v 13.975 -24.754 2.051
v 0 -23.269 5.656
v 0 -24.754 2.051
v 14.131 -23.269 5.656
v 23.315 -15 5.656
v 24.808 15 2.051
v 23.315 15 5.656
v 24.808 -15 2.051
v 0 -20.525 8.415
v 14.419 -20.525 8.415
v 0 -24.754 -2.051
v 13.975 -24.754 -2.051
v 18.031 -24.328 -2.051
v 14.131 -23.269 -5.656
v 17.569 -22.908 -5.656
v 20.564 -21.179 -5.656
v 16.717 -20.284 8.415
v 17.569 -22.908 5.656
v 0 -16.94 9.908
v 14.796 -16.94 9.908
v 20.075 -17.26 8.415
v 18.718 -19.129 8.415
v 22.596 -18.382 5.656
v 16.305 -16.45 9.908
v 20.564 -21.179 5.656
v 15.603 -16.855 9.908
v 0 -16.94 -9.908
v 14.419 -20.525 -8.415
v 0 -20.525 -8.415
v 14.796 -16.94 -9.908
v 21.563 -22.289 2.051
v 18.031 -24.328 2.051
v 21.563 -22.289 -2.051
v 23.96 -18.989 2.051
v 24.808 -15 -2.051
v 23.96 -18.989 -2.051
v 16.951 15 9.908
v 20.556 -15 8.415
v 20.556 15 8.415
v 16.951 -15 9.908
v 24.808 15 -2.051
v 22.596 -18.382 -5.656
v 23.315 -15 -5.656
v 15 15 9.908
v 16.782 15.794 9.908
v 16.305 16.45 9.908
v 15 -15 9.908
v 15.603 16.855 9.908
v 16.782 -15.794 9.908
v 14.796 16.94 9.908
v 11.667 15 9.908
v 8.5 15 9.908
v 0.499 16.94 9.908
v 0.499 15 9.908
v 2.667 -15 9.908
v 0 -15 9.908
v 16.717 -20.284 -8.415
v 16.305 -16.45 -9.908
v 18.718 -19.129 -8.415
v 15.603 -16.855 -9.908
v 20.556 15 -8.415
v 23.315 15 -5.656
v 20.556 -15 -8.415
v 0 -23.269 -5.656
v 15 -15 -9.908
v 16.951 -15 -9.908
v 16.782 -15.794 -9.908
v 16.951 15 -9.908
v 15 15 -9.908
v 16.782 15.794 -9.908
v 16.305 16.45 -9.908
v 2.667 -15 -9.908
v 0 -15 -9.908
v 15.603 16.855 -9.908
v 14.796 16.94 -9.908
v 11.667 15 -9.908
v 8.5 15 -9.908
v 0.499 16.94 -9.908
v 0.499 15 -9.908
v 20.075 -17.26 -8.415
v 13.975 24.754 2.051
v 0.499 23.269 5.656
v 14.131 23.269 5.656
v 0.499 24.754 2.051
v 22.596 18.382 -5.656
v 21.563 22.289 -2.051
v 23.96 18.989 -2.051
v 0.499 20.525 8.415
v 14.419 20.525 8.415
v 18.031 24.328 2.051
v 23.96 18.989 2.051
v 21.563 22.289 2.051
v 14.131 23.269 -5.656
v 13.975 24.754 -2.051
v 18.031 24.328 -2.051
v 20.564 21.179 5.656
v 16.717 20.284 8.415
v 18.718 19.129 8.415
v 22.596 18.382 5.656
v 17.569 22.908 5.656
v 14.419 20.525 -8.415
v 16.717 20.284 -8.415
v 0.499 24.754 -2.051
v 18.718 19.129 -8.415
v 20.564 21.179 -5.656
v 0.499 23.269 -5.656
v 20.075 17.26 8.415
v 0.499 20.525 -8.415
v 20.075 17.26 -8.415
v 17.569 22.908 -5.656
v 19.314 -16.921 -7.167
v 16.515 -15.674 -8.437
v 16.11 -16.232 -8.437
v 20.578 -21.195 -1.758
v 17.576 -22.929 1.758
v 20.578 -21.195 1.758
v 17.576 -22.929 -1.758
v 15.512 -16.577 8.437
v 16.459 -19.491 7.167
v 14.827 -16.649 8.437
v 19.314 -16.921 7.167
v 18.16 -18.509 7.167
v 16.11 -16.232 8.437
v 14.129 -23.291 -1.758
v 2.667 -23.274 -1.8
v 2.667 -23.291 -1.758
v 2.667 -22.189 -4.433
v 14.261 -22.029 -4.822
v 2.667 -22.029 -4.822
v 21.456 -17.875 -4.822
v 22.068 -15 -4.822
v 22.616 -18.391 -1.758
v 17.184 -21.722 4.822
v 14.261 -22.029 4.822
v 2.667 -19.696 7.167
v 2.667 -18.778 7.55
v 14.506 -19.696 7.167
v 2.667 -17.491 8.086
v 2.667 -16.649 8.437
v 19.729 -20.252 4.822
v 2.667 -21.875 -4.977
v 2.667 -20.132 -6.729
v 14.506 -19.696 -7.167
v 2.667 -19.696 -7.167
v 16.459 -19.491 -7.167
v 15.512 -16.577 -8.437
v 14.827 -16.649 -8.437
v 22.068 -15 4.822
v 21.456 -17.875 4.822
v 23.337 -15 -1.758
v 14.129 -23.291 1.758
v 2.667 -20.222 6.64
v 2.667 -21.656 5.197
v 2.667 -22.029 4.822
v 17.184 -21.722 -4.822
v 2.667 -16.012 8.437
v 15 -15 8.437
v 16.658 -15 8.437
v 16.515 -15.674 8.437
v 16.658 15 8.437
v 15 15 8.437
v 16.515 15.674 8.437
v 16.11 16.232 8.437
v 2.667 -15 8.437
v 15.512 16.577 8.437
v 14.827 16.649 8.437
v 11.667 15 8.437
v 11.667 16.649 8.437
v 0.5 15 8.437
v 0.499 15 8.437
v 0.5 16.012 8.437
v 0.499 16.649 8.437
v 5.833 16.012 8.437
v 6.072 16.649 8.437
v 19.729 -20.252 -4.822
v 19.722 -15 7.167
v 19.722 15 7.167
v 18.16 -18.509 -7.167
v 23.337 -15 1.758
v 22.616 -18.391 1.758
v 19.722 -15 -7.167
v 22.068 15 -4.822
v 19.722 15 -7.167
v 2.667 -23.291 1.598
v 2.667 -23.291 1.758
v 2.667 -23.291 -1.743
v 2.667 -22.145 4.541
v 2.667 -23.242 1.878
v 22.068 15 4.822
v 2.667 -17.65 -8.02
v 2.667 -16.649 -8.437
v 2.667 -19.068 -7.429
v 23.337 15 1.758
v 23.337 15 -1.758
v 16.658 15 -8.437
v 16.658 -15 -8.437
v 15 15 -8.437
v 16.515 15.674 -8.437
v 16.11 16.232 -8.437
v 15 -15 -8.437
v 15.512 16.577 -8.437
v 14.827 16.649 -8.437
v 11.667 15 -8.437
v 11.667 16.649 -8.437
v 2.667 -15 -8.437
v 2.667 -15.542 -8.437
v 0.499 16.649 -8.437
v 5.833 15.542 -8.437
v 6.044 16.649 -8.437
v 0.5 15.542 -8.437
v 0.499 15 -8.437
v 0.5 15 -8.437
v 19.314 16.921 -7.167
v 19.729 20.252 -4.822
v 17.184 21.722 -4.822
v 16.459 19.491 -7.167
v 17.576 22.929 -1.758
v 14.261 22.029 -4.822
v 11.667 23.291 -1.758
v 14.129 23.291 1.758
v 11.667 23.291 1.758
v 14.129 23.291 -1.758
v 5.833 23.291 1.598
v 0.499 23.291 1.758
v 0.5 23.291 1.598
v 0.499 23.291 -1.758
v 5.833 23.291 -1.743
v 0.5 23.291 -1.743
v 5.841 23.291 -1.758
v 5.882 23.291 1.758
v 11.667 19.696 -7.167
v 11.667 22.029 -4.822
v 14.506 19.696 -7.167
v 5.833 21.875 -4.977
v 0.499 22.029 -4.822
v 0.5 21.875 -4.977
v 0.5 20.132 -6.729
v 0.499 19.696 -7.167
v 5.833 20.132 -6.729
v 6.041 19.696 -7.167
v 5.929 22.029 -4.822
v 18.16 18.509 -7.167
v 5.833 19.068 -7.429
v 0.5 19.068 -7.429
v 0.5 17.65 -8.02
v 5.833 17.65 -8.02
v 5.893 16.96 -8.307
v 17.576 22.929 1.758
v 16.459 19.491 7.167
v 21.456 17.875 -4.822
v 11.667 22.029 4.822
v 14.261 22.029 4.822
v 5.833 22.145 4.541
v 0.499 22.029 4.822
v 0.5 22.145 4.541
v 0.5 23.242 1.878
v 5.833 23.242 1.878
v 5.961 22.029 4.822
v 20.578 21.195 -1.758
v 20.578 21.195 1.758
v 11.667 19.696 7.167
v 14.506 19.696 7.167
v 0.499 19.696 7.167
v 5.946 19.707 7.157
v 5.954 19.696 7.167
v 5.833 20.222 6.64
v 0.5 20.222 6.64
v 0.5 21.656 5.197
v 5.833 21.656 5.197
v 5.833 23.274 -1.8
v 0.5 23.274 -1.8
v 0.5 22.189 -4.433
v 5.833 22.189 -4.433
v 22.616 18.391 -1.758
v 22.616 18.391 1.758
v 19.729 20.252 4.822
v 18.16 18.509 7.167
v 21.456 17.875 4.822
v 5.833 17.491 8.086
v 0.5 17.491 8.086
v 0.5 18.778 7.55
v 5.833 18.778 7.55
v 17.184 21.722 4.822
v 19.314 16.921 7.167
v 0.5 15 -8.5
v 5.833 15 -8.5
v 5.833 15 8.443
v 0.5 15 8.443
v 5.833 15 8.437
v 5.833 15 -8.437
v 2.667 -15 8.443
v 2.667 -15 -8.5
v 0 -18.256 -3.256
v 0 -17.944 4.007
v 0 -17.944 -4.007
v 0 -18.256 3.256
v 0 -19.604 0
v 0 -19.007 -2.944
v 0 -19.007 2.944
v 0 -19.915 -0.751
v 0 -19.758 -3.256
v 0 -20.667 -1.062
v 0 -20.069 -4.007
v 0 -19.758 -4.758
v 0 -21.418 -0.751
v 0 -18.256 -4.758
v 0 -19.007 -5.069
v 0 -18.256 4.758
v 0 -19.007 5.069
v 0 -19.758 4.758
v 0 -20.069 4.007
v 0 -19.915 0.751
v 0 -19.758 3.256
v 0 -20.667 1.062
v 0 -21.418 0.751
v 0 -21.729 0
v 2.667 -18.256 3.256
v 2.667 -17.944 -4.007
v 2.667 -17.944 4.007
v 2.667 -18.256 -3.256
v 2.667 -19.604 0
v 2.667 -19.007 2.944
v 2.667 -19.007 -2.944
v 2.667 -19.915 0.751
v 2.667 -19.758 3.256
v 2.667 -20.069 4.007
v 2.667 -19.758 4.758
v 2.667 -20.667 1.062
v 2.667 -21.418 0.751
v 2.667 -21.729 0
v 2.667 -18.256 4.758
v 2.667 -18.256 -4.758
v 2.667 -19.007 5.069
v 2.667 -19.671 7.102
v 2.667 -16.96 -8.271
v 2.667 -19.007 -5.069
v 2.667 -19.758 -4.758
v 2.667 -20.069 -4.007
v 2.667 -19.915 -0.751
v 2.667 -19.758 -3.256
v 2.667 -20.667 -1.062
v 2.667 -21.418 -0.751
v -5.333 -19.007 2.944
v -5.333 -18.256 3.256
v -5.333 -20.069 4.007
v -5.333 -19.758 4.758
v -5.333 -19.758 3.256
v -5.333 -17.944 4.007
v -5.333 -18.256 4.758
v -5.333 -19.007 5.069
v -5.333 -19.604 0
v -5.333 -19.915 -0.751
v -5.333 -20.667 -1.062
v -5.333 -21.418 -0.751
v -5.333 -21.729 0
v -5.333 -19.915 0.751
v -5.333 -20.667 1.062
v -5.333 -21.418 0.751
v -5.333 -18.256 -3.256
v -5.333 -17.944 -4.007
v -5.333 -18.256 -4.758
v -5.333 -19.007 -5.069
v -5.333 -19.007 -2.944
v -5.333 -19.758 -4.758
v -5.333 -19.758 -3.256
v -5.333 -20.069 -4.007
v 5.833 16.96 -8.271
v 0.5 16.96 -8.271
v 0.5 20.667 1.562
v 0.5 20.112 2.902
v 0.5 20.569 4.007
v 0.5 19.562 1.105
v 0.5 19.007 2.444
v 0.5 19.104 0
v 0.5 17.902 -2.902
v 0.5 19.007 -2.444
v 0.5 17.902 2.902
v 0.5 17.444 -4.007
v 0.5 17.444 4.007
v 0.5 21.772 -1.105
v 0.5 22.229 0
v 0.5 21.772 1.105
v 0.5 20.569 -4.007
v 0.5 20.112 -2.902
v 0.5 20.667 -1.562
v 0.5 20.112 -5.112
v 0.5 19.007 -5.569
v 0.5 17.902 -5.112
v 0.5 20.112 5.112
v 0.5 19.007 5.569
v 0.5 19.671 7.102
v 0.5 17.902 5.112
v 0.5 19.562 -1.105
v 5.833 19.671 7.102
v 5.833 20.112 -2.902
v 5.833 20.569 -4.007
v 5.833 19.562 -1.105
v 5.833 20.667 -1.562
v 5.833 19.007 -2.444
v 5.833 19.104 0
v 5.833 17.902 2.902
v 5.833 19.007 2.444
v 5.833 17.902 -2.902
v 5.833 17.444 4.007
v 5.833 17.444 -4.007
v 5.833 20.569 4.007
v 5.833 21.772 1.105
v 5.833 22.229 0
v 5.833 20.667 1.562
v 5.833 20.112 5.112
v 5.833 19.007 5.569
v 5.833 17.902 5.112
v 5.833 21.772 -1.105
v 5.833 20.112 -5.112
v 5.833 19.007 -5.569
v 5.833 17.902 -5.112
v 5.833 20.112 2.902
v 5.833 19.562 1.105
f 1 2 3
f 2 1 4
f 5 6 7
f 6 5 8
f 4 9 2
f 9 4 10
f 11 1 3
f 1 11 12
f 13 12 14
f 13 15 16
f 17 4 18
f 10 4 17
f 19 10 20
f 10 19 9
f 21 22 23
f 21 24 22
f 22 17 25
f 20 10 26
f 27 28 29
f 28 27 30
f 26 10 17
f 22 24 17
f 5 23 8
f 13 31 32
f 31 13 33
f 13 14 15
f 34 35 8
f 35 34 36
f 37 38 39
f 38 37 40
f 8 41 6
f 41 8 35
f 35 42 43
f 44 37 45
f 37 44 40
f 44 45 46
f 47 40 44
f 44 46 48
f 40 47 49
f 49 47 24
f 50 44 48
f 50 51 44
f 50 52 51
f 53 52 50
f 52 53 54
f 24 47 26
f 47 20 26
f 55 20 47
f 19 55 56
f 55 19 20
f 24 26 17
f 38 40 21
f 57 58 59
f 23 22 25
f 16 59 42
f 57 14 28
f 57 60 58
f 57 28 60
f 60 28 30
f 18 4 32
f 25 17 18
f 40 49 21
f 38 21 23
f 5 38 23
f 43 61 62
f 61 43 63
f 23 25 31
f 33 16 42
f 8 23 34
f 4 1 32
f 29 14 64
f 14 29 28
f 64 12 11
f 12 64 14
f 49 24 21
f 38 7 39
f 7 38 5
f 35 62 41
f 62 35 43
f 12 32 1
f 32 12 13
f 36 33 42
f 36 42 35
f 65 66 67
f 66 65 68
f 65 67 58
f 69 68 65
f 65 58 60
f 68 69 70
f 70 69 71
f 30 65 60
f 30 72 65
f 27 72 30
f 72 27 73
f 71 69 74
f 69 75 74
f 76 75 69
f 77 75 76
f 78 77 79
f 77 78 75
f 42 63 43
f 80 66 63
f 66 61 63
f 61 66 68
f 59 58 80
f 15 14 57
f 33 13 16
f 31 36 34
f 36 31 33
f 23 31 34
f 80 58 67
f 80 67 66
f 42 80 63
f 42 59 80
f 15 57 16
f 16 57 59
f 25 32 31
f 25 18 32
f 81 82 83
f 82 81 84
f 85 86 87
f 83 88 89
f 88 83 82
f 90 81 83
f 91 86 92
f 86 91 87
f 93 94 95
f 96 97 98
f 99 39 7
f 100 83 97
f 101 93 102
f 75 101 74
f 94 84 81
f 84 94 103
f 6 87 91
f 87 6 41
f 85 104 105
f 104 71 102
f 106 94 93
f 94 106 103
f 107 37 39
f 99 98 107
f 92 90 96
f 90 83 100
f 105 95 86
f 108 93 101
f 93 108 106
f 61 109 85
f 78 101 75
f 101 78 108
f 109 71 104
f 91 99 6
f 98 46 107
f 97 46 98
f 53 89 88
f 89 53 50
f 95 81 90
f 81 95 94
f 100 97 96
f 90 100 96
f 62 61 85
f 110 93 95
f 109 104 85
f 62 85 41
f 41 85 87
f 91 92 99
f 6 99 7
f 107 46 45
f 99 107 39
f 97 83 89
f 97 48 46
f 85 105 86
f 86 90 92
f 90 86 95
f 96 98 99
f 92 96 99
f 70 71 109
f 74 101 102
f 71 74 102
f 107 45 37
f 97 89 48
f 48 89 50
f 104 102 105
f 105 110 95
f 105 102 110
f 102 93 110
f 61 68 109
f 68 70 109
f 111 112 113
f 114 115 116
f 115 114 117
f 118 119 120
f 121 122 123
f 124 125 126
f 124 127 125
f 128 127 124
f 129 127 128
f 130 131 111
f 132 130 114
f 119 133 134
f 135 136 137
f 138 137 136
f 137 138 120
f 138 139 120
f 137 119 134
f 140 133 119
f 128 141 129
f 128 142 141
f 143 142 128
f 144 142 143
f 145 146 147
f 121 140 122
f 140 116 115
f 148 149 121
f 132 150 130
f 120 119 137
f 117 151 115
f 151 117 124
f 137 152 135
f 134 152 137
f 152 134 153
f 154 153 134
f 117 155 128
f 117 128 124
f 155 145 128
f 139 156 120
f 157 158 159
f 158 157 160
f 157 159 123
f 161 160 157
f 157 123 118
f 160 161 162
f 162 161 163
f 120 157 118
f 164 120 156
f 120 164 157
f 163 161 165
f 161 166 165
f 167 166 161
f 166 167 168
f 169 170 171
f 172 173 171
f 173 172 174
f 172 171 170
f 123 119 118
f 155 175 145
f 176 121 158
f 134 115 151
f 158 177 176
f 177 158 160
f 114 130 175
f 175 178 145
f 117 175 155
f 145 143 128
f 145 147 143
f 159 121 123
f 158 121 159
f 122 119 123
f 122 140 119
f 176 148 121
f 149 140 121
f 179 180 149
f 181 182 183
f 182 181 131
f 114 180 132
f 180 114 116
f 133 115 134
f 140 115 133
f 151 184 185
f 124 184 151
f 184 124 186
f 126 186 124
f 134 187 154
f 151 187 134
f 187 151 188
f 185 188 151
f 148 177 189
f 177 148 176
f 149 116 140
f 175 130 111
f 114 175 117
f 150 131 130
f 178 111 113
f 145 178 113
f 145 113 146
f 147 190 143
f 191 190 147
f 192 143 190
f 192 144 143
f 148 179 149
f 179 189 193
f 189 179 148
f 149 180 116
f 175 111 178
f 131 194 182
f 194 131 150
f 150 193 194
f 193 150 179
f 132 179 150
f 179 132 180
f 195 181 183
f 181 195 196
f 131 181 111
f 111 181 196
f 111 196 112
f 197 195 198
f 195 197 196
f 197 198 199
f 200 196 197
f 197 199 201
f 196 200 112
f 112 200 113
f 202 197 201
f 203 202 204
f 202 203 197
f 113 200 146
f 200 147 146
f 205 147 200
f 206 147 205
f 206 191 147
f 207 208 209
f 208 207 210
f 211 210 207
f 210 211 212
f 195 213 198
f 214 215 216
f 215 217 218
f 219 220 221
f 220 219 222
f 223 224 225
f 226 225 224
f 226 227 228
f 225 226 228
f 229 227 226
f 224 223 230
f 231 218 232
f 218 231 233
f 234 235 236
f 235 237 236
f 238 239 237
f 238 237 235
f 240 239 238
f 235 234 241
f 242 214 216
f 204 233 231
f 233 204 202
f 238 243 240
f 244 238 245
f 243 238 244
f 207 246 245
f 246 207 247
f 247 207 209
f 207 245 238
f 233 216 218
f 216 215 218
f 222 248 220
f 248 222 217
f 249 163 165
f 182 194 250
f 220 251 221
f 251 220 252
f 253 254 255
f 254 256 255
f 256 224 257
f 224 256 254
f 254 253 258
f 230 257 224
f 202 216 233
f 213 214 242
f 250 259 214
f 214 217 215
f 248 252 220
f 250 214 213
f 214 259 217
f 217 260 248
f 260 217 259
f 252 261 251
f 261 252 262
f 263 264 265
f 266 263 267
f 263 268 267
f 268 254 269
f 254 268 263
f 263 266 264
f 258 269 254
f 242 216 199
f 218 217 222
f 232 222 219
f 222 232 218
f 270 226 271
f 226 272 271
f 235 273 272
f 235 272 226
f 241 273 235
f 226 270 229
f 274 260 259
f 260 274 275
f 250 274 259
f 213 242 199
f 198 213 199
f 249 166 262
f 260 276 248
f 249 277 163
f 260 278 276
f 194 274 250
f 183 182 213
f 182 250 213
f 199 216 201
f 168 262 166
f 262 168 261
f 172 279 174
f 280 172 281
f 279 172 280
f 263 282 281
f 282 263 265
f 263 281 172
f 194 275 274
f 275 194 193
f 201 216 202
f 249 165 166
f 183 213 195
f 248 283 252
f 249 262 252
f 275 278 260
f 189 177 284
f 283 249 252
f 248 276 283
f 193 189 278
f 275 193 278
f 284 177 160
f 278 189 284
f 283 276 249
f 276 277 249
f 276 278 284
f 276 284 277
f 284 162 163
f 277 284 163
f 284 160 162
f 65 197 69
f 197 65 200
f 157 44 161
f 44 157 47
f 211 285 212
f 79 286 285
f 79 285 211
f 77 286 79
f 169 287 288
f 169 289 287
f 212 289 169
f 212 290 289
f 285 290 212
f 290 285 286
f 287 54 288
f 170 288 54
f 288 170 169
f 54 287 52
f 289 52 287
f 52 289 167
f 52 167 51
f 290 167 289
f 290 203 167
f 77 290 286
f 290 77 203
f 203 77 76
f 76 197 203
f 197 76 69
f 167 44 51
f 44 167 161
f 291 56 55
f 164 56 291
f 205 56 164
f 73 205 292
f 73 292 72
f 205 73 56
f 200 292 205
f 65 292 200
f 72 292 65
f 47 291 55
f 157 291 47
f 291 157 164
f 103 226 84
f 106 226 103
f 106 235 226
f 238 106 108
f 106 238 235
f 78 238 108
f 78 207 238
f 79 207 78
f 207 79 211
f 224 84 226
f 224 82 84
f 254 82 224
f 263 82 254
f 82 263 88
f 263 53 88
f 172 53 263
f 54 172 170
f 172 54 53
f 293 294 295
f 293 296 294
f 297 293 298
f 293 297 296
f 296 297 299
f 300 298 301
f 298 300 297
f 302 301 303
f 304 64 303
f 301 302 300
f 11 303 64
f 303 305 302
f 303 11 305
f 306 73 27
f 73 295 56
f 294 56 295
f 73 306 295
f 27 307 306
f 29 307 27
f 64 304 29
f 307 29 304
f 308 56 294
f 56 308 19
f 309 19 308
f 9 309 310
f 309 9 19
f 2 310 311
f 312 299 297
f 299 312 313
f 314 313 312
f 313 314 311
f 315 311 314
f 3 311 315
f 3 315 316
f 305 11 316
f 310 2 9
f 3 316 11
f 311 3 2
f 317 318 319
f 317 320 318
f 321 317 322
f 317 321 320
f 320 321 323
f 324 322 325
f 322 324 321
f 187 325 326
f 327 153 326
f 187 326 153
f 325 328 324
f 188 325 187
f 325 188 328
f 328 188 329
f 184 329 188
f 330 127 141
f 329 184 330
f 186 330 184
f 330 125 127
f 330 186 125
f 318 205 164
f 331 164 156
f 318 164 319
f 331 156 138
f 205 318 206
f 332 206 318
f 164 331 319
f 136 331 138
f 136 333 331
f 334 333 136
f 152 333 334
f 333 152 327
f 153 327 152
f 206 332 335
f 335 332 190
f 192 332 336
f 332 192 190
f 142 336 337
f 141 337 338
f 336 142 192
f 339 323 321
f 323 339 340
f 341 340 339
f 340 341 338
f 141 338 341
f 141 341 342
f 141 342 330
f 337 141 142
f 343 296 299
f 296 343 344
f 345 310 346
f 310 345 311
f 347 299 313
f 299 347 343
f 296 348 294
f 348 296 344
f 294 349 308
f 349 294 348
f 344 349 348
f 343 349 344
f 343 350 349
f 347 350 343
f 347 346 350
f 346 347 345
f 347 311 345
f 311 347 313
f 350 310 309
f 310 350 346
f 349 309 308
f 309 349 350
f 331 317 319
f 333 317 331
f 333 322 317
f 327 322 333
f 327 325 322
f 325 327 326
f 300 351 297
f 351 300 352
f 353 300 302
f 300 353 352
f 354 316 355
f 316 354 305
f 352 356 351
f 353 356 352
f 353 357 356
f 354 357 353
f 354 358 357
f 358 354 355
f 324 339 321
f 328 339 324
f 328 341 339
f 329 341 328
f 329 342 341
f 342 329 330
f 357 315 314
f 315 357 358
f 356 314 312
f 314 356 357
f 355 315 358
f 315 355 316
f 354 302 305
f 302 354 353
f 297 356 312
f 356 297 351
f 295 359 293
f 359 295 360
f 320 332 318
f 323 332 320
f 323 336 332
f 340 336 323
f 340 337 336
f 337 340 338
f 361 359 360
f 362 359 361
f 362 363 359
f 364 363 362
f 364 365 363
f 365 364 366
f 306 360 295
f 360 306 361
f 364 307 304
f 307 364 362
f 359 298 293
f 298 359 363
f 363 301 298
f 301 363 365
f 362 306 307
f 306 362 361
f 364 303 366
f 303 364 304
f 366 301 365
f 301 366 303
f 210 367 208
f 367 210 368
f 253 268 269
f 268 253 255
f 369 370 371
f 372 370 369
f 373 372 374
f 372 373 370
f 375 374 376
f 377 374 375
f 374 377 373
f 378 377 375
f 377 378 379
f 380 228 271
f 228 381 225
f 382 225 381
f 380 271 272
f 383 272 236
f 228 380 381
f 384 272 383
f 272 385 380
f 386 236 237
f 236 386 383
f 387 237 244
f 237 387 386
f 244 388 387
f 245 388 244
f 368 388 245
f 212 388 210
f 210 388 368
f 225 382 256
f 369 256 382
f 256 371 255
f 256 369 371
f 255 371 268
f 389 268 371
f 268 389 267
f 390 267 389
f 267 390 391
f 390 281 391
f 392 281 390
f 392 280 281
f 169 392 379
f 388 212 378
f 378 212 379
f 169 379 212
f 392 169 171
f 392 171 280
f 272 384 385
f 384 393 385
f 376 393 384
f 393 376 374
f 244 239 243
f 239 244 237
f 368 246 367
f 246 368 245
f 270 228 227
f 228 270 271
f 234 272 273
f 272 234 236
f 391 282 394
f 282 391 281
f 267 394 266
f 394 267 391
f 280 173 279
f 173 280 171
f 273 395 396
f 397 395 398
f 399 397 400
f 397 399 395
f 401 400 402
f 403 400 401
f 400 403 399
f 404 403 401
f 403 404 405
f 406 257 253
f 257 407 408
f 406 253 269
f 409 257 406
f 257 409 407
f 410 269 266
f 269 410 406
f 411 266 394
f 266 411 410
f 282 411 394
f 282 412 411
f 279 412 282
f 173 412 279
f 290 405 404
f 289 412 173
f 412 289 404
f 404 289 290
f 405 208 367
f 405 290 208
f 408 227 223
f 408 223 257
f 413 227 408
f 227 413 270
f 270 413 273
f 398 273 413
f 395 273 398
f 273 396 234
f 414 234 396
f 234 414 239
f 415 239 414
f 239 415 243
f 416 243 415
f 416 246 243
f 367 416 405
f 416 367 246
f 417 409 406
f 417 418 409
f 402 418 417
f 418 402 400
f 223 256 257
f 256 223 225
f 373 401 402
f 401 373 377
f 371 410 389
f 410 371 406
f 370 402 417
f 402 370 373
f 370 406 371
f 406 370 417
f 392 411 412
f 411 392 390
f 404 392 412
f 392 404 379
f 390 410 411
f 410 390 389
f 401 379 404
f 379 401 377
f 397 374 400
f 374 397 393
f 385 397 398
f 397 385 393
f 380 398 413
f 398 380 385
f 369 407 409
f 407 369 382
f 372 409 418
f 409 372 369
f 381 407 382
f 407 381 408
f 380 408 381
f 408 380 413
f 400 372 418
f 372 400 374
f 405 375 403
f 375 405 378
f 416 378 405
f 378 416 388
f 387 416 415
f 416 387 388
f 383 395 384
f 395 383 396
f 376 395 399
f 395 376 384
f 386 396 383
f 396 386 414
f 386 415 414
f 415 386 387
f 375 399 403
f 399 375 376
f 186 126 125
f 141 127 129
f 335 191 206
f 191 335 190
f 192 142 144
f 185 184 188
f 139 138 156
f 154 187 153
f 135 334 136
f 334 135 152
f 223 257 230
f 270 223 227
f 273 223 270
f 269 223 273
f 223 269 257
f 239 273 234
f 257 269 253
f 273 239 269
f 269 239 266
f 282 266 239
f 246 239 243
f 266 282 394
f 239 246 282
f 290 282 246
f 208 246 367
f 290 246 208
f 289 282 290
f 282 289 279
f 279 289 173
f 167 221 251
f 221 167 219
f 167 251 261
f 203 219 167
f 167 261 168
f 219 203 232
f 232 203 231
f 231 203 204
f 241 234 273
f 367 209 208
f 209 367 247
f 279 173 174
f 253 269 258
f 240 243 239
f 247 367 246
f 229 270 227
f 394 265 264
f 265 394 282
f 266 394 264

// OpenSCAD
union () {
  intersection () {
    difference () {
      difference () {
        difference () {
          minkowski () {
            intersection () {
              difference () {
                union () {
                  cube ([30, 30, 30], center=true);
                }
                union () {
                  cube ([29.99, 29.99, 29.99], center=true);
                }
              }
              cube ([400, 400, 0.2], center=true);
            }
            sphere ($fn=15, r=10);
          }
          minkowski () {
            intersection () {
              difference () {
                union () {
                  cube ([30, 30, 30], center=true);
                }
                union () {
                  cube ([29.99, 29.99, 29.99], center=true);
                }
              }
              cube ([400, 400, 0.2], center=true);
            }
            sphere ($fn=15, r=8.5);
          }
        }
        union () {
          cube ([30, 30, 30], center=true);
        }
      }
      translate ([0, 15, 0]) {
        translate ([-0.001, 0, 0]) {
          translate ([0.25, 0, 0]) {
            rotate (a=90.0, v=[0, 1, 0]) {
              intersection () {
                translate ([0, 18.0, 0]) {
                  cube ([36.0, 36.0, 36.0], center=true);
                }
                cylinder (h=0.5, r=17.0, center=true);
              }
            }
          }
        }
      }
      translate ([-20, 0, 0]) {
        cube ([40, 80, 40], center=true);
      }
    }
  }
  hull () {
    translate ([0, -15, 0]) {
      mirror ([0, 1, 0]) {
        mirror ([1, 0, 0]) {
          translate ([-8/3, 0, 0]) {
            translate ([4/3, 0, 0]) {
              rotate (a=90.0, v=[0, 1, 0]) {
                intersection () {
                  translate ([0, 9.5, 0]) {
                    cube ([19.0, 19.0, 19.0], center=true);
                  }
                  cylinder (h=8/3, r=8.5, center=true);
                }
              }
            }
          }
        }
      }
    }
    intersection () {
      difference () {
        difference () {
          minkowski () {
            intersection () {
              difference () {
                union () {
                  cube ([30, 30, 30], center=true);
                }
                union () {
                  cube ([29.99, 29.99, 29.99], center=true);
                }
              }
              cube ([400, 400, 0.2], center=true);
            }
            sphere ($fn=15, r=10);
          }
          minkowski () {
            intersection () {
              difference () {
                union () {
                  cube ([30, 30, 30], center=true);
                }
                union () {
                  cube ([29.99, 29.99, 29.99], center=true);
                }
              }
              cube ([400, 400, 0.2], center=true);
            }
            sphere ($fn=15, r=8.5);
          }
        }
        union () {
          cube ([30, 30, 30], center=true);
        }
      }
      translate ([0, -15, 0]) {
        mirror ([0, 1, 0]) {
          mirror ([1, 0, 0]) {
            translate ([-8/3, 0, 0]) {
              translate ([4/3, 0, 0]) {
                rotate (a=90.0, v=[0, 1, 0]) {
                  intersection () {
                    translate ([0, 18.0, 0]) {
                      cube ([36.0, 36.0, 36.0], center=true);
                    }
                    cylinder (h=8/3, r=17.0, center=true);
                  }
                }
              }
            }
          }
        }
      }
    }
  }
  translate ([0, -15, 0]) {
    mirror ([0, 1, 0]) {
      mirror ([1, 0, 0]) {
        union () {
          translate ([-8/3, 0, 0]) {
            translate ([4/3, 0, 0]) {
              rotate (a=90.0, v=[0, 1, 0]) {
                intersection () {
                  translate ([0, 9.5, 0]) {
                    cube ([19.0, 19.0, 19.0], center=true);
                  }
                  cylinder (h=8/3, r=8.5, center=true);
                }
              }
            }
          }
          translate ([-8/3, 0, 0]) {
            union () {
              translate ([4, 0, 0]) {
                rotate (a=45.0, v=[-1, 0, 0]) {
                  translate ([0, 0, 5.666666666666667]) {
                    rotate (a=90.0, v=[0, 1, 0]) {
                      cylinder ($fn=8, h=8, r=1.0625, center=true);
                    }
                  }
                }
              }
              translate ([4, 0, 0]) {
                rotate (a=90.0, v=[-1, 0, 0]) {
                  translate ([0, 0, 5.666666666666667]) {
                    rotate (a=90.0, v=[0, 1, 0]) {
                      cylinder ($fn=8, h=8, r=1.0625, center=true);
                    }
                  }
                }
              }
              translate ([4, 0, 0]) {
                rotate (a=135.0, v=[-1, 0, 0]) {
                  translate ([0, 0, 5.666666666666667]) {
                    rotate (a=90.0, v=[0, 1, 0]) {
                      cylinder ($fn=8, h=8, r=1.0625, center=true);
                    }
                  }
                }
              }
            }
          }
        }
      }
    }
  }
  hull () {
    translate ([0, 15, 0]) {
      translate ([5.833333333333333, 0, 0]) {
        translate ([1.5833333333333335, 0, 0]) {
          rotate (a=90.0, v=[0, 1, 0]) {
            intersection () {
              translate ([0, 9.5, 0]) {
                cube ([19.0, 19.0, 19.0], center=true);
              }
              cylinder (h=3.166666666666667, r=8.5, center=true);
            }
          }
        }
      }
    }
    intersection () {
      difference () {
        difference () {
          minkowski () {
            intersection () {
              difference () {
                union () {
                  cube ([30, 30, 30], center=true);
                }
                union () {
                  cube ([29.99, 29.99, 29.99], center=true);
                }
              }
              cube ([400, 400, 0.2], center=true);
            }
            sphere ($fn=15, r=10);
          }
          minkowski () {
            intersection () {
              difference () {
                union () {
                  cube ([30, 30, 30], center=true);
                }
                union () {
                  cube ([29.99, 29.99, 29.99], center=true);
                }
              }
              cube ([400, 400, 0.2], center=true);
            }
            sphere ($fn=15, r=8.5);
          }
        }
        union () {
          cube ([30, 30, 30], center=true);
        }
      }
      translate ([0, 15, 0]) {
        translate ([8.5, 0, 0]) {
          translate ([1.5833333333333335, 0, 0]) {
            rotate (a=90.0, v=[0, 1, 0]) {
              intersection () {
                translate ([0, 18.0, 0]) {
                  cube ([36.0, 36.0, 36.0], center=true);
                }
                cylinder (h=3.166666666666667, r=17.0, center=true);
              }
            }
          }
        }
      }
    }
  }
  translate ([0, 15, 0]) {
    difference () {
      translate ([0.5, 0, 0]) {
        translate ([8/3, 0, 0]) {
          rotate (a=90.0, v=[0, 1, 0]) {
            intersection () {
              translate ([0, 9.5, 0]) {
                cube ([19.0, 19.0, 19.0], center=true);
              }
              cylinder (h=16/3, r=8.5, center=true);
            }
          }
        }
      }
      translate ([0.5, 0, 0]) {
        union () {
          translate ([4, 0, 0]) {
            rotate (a=45.0, v=[-1, 0, 0]) {
              translate ([0, 0, 5.666666666666667]) {
                rotate (a=90.0, v=[0, 1, 0]) {
                  cylinder ($fn=8, h=9.0, r=1.5625, center=true);
                }
              }
            }
          }
          translate ([4, 0, 0]) {
            rotate (a=90.0, v=[-1, 0, 0]) {
              translate ([0, 0, 5.666666666666667]) {
                rotate (a=90.0, v=[0, 1, 0]) {
                  cylinder ($fn=8, h=9.0, r=1.5625, center=true);
                }
              }
            }
          }
          translate ([4, 0, 0]) {
            rotate (a=135.0, v=[-1, 0, 0]) {
              translate ([0, 0, 5.666666666666667]) {
                rotate (a=90.0, v=[0, 1, 0]) {
                  cylinder ($fn=8, h=9.0, r=1.5625, center=true);
                }
              }
            }
          }
        }
      }
    }
  }
}
